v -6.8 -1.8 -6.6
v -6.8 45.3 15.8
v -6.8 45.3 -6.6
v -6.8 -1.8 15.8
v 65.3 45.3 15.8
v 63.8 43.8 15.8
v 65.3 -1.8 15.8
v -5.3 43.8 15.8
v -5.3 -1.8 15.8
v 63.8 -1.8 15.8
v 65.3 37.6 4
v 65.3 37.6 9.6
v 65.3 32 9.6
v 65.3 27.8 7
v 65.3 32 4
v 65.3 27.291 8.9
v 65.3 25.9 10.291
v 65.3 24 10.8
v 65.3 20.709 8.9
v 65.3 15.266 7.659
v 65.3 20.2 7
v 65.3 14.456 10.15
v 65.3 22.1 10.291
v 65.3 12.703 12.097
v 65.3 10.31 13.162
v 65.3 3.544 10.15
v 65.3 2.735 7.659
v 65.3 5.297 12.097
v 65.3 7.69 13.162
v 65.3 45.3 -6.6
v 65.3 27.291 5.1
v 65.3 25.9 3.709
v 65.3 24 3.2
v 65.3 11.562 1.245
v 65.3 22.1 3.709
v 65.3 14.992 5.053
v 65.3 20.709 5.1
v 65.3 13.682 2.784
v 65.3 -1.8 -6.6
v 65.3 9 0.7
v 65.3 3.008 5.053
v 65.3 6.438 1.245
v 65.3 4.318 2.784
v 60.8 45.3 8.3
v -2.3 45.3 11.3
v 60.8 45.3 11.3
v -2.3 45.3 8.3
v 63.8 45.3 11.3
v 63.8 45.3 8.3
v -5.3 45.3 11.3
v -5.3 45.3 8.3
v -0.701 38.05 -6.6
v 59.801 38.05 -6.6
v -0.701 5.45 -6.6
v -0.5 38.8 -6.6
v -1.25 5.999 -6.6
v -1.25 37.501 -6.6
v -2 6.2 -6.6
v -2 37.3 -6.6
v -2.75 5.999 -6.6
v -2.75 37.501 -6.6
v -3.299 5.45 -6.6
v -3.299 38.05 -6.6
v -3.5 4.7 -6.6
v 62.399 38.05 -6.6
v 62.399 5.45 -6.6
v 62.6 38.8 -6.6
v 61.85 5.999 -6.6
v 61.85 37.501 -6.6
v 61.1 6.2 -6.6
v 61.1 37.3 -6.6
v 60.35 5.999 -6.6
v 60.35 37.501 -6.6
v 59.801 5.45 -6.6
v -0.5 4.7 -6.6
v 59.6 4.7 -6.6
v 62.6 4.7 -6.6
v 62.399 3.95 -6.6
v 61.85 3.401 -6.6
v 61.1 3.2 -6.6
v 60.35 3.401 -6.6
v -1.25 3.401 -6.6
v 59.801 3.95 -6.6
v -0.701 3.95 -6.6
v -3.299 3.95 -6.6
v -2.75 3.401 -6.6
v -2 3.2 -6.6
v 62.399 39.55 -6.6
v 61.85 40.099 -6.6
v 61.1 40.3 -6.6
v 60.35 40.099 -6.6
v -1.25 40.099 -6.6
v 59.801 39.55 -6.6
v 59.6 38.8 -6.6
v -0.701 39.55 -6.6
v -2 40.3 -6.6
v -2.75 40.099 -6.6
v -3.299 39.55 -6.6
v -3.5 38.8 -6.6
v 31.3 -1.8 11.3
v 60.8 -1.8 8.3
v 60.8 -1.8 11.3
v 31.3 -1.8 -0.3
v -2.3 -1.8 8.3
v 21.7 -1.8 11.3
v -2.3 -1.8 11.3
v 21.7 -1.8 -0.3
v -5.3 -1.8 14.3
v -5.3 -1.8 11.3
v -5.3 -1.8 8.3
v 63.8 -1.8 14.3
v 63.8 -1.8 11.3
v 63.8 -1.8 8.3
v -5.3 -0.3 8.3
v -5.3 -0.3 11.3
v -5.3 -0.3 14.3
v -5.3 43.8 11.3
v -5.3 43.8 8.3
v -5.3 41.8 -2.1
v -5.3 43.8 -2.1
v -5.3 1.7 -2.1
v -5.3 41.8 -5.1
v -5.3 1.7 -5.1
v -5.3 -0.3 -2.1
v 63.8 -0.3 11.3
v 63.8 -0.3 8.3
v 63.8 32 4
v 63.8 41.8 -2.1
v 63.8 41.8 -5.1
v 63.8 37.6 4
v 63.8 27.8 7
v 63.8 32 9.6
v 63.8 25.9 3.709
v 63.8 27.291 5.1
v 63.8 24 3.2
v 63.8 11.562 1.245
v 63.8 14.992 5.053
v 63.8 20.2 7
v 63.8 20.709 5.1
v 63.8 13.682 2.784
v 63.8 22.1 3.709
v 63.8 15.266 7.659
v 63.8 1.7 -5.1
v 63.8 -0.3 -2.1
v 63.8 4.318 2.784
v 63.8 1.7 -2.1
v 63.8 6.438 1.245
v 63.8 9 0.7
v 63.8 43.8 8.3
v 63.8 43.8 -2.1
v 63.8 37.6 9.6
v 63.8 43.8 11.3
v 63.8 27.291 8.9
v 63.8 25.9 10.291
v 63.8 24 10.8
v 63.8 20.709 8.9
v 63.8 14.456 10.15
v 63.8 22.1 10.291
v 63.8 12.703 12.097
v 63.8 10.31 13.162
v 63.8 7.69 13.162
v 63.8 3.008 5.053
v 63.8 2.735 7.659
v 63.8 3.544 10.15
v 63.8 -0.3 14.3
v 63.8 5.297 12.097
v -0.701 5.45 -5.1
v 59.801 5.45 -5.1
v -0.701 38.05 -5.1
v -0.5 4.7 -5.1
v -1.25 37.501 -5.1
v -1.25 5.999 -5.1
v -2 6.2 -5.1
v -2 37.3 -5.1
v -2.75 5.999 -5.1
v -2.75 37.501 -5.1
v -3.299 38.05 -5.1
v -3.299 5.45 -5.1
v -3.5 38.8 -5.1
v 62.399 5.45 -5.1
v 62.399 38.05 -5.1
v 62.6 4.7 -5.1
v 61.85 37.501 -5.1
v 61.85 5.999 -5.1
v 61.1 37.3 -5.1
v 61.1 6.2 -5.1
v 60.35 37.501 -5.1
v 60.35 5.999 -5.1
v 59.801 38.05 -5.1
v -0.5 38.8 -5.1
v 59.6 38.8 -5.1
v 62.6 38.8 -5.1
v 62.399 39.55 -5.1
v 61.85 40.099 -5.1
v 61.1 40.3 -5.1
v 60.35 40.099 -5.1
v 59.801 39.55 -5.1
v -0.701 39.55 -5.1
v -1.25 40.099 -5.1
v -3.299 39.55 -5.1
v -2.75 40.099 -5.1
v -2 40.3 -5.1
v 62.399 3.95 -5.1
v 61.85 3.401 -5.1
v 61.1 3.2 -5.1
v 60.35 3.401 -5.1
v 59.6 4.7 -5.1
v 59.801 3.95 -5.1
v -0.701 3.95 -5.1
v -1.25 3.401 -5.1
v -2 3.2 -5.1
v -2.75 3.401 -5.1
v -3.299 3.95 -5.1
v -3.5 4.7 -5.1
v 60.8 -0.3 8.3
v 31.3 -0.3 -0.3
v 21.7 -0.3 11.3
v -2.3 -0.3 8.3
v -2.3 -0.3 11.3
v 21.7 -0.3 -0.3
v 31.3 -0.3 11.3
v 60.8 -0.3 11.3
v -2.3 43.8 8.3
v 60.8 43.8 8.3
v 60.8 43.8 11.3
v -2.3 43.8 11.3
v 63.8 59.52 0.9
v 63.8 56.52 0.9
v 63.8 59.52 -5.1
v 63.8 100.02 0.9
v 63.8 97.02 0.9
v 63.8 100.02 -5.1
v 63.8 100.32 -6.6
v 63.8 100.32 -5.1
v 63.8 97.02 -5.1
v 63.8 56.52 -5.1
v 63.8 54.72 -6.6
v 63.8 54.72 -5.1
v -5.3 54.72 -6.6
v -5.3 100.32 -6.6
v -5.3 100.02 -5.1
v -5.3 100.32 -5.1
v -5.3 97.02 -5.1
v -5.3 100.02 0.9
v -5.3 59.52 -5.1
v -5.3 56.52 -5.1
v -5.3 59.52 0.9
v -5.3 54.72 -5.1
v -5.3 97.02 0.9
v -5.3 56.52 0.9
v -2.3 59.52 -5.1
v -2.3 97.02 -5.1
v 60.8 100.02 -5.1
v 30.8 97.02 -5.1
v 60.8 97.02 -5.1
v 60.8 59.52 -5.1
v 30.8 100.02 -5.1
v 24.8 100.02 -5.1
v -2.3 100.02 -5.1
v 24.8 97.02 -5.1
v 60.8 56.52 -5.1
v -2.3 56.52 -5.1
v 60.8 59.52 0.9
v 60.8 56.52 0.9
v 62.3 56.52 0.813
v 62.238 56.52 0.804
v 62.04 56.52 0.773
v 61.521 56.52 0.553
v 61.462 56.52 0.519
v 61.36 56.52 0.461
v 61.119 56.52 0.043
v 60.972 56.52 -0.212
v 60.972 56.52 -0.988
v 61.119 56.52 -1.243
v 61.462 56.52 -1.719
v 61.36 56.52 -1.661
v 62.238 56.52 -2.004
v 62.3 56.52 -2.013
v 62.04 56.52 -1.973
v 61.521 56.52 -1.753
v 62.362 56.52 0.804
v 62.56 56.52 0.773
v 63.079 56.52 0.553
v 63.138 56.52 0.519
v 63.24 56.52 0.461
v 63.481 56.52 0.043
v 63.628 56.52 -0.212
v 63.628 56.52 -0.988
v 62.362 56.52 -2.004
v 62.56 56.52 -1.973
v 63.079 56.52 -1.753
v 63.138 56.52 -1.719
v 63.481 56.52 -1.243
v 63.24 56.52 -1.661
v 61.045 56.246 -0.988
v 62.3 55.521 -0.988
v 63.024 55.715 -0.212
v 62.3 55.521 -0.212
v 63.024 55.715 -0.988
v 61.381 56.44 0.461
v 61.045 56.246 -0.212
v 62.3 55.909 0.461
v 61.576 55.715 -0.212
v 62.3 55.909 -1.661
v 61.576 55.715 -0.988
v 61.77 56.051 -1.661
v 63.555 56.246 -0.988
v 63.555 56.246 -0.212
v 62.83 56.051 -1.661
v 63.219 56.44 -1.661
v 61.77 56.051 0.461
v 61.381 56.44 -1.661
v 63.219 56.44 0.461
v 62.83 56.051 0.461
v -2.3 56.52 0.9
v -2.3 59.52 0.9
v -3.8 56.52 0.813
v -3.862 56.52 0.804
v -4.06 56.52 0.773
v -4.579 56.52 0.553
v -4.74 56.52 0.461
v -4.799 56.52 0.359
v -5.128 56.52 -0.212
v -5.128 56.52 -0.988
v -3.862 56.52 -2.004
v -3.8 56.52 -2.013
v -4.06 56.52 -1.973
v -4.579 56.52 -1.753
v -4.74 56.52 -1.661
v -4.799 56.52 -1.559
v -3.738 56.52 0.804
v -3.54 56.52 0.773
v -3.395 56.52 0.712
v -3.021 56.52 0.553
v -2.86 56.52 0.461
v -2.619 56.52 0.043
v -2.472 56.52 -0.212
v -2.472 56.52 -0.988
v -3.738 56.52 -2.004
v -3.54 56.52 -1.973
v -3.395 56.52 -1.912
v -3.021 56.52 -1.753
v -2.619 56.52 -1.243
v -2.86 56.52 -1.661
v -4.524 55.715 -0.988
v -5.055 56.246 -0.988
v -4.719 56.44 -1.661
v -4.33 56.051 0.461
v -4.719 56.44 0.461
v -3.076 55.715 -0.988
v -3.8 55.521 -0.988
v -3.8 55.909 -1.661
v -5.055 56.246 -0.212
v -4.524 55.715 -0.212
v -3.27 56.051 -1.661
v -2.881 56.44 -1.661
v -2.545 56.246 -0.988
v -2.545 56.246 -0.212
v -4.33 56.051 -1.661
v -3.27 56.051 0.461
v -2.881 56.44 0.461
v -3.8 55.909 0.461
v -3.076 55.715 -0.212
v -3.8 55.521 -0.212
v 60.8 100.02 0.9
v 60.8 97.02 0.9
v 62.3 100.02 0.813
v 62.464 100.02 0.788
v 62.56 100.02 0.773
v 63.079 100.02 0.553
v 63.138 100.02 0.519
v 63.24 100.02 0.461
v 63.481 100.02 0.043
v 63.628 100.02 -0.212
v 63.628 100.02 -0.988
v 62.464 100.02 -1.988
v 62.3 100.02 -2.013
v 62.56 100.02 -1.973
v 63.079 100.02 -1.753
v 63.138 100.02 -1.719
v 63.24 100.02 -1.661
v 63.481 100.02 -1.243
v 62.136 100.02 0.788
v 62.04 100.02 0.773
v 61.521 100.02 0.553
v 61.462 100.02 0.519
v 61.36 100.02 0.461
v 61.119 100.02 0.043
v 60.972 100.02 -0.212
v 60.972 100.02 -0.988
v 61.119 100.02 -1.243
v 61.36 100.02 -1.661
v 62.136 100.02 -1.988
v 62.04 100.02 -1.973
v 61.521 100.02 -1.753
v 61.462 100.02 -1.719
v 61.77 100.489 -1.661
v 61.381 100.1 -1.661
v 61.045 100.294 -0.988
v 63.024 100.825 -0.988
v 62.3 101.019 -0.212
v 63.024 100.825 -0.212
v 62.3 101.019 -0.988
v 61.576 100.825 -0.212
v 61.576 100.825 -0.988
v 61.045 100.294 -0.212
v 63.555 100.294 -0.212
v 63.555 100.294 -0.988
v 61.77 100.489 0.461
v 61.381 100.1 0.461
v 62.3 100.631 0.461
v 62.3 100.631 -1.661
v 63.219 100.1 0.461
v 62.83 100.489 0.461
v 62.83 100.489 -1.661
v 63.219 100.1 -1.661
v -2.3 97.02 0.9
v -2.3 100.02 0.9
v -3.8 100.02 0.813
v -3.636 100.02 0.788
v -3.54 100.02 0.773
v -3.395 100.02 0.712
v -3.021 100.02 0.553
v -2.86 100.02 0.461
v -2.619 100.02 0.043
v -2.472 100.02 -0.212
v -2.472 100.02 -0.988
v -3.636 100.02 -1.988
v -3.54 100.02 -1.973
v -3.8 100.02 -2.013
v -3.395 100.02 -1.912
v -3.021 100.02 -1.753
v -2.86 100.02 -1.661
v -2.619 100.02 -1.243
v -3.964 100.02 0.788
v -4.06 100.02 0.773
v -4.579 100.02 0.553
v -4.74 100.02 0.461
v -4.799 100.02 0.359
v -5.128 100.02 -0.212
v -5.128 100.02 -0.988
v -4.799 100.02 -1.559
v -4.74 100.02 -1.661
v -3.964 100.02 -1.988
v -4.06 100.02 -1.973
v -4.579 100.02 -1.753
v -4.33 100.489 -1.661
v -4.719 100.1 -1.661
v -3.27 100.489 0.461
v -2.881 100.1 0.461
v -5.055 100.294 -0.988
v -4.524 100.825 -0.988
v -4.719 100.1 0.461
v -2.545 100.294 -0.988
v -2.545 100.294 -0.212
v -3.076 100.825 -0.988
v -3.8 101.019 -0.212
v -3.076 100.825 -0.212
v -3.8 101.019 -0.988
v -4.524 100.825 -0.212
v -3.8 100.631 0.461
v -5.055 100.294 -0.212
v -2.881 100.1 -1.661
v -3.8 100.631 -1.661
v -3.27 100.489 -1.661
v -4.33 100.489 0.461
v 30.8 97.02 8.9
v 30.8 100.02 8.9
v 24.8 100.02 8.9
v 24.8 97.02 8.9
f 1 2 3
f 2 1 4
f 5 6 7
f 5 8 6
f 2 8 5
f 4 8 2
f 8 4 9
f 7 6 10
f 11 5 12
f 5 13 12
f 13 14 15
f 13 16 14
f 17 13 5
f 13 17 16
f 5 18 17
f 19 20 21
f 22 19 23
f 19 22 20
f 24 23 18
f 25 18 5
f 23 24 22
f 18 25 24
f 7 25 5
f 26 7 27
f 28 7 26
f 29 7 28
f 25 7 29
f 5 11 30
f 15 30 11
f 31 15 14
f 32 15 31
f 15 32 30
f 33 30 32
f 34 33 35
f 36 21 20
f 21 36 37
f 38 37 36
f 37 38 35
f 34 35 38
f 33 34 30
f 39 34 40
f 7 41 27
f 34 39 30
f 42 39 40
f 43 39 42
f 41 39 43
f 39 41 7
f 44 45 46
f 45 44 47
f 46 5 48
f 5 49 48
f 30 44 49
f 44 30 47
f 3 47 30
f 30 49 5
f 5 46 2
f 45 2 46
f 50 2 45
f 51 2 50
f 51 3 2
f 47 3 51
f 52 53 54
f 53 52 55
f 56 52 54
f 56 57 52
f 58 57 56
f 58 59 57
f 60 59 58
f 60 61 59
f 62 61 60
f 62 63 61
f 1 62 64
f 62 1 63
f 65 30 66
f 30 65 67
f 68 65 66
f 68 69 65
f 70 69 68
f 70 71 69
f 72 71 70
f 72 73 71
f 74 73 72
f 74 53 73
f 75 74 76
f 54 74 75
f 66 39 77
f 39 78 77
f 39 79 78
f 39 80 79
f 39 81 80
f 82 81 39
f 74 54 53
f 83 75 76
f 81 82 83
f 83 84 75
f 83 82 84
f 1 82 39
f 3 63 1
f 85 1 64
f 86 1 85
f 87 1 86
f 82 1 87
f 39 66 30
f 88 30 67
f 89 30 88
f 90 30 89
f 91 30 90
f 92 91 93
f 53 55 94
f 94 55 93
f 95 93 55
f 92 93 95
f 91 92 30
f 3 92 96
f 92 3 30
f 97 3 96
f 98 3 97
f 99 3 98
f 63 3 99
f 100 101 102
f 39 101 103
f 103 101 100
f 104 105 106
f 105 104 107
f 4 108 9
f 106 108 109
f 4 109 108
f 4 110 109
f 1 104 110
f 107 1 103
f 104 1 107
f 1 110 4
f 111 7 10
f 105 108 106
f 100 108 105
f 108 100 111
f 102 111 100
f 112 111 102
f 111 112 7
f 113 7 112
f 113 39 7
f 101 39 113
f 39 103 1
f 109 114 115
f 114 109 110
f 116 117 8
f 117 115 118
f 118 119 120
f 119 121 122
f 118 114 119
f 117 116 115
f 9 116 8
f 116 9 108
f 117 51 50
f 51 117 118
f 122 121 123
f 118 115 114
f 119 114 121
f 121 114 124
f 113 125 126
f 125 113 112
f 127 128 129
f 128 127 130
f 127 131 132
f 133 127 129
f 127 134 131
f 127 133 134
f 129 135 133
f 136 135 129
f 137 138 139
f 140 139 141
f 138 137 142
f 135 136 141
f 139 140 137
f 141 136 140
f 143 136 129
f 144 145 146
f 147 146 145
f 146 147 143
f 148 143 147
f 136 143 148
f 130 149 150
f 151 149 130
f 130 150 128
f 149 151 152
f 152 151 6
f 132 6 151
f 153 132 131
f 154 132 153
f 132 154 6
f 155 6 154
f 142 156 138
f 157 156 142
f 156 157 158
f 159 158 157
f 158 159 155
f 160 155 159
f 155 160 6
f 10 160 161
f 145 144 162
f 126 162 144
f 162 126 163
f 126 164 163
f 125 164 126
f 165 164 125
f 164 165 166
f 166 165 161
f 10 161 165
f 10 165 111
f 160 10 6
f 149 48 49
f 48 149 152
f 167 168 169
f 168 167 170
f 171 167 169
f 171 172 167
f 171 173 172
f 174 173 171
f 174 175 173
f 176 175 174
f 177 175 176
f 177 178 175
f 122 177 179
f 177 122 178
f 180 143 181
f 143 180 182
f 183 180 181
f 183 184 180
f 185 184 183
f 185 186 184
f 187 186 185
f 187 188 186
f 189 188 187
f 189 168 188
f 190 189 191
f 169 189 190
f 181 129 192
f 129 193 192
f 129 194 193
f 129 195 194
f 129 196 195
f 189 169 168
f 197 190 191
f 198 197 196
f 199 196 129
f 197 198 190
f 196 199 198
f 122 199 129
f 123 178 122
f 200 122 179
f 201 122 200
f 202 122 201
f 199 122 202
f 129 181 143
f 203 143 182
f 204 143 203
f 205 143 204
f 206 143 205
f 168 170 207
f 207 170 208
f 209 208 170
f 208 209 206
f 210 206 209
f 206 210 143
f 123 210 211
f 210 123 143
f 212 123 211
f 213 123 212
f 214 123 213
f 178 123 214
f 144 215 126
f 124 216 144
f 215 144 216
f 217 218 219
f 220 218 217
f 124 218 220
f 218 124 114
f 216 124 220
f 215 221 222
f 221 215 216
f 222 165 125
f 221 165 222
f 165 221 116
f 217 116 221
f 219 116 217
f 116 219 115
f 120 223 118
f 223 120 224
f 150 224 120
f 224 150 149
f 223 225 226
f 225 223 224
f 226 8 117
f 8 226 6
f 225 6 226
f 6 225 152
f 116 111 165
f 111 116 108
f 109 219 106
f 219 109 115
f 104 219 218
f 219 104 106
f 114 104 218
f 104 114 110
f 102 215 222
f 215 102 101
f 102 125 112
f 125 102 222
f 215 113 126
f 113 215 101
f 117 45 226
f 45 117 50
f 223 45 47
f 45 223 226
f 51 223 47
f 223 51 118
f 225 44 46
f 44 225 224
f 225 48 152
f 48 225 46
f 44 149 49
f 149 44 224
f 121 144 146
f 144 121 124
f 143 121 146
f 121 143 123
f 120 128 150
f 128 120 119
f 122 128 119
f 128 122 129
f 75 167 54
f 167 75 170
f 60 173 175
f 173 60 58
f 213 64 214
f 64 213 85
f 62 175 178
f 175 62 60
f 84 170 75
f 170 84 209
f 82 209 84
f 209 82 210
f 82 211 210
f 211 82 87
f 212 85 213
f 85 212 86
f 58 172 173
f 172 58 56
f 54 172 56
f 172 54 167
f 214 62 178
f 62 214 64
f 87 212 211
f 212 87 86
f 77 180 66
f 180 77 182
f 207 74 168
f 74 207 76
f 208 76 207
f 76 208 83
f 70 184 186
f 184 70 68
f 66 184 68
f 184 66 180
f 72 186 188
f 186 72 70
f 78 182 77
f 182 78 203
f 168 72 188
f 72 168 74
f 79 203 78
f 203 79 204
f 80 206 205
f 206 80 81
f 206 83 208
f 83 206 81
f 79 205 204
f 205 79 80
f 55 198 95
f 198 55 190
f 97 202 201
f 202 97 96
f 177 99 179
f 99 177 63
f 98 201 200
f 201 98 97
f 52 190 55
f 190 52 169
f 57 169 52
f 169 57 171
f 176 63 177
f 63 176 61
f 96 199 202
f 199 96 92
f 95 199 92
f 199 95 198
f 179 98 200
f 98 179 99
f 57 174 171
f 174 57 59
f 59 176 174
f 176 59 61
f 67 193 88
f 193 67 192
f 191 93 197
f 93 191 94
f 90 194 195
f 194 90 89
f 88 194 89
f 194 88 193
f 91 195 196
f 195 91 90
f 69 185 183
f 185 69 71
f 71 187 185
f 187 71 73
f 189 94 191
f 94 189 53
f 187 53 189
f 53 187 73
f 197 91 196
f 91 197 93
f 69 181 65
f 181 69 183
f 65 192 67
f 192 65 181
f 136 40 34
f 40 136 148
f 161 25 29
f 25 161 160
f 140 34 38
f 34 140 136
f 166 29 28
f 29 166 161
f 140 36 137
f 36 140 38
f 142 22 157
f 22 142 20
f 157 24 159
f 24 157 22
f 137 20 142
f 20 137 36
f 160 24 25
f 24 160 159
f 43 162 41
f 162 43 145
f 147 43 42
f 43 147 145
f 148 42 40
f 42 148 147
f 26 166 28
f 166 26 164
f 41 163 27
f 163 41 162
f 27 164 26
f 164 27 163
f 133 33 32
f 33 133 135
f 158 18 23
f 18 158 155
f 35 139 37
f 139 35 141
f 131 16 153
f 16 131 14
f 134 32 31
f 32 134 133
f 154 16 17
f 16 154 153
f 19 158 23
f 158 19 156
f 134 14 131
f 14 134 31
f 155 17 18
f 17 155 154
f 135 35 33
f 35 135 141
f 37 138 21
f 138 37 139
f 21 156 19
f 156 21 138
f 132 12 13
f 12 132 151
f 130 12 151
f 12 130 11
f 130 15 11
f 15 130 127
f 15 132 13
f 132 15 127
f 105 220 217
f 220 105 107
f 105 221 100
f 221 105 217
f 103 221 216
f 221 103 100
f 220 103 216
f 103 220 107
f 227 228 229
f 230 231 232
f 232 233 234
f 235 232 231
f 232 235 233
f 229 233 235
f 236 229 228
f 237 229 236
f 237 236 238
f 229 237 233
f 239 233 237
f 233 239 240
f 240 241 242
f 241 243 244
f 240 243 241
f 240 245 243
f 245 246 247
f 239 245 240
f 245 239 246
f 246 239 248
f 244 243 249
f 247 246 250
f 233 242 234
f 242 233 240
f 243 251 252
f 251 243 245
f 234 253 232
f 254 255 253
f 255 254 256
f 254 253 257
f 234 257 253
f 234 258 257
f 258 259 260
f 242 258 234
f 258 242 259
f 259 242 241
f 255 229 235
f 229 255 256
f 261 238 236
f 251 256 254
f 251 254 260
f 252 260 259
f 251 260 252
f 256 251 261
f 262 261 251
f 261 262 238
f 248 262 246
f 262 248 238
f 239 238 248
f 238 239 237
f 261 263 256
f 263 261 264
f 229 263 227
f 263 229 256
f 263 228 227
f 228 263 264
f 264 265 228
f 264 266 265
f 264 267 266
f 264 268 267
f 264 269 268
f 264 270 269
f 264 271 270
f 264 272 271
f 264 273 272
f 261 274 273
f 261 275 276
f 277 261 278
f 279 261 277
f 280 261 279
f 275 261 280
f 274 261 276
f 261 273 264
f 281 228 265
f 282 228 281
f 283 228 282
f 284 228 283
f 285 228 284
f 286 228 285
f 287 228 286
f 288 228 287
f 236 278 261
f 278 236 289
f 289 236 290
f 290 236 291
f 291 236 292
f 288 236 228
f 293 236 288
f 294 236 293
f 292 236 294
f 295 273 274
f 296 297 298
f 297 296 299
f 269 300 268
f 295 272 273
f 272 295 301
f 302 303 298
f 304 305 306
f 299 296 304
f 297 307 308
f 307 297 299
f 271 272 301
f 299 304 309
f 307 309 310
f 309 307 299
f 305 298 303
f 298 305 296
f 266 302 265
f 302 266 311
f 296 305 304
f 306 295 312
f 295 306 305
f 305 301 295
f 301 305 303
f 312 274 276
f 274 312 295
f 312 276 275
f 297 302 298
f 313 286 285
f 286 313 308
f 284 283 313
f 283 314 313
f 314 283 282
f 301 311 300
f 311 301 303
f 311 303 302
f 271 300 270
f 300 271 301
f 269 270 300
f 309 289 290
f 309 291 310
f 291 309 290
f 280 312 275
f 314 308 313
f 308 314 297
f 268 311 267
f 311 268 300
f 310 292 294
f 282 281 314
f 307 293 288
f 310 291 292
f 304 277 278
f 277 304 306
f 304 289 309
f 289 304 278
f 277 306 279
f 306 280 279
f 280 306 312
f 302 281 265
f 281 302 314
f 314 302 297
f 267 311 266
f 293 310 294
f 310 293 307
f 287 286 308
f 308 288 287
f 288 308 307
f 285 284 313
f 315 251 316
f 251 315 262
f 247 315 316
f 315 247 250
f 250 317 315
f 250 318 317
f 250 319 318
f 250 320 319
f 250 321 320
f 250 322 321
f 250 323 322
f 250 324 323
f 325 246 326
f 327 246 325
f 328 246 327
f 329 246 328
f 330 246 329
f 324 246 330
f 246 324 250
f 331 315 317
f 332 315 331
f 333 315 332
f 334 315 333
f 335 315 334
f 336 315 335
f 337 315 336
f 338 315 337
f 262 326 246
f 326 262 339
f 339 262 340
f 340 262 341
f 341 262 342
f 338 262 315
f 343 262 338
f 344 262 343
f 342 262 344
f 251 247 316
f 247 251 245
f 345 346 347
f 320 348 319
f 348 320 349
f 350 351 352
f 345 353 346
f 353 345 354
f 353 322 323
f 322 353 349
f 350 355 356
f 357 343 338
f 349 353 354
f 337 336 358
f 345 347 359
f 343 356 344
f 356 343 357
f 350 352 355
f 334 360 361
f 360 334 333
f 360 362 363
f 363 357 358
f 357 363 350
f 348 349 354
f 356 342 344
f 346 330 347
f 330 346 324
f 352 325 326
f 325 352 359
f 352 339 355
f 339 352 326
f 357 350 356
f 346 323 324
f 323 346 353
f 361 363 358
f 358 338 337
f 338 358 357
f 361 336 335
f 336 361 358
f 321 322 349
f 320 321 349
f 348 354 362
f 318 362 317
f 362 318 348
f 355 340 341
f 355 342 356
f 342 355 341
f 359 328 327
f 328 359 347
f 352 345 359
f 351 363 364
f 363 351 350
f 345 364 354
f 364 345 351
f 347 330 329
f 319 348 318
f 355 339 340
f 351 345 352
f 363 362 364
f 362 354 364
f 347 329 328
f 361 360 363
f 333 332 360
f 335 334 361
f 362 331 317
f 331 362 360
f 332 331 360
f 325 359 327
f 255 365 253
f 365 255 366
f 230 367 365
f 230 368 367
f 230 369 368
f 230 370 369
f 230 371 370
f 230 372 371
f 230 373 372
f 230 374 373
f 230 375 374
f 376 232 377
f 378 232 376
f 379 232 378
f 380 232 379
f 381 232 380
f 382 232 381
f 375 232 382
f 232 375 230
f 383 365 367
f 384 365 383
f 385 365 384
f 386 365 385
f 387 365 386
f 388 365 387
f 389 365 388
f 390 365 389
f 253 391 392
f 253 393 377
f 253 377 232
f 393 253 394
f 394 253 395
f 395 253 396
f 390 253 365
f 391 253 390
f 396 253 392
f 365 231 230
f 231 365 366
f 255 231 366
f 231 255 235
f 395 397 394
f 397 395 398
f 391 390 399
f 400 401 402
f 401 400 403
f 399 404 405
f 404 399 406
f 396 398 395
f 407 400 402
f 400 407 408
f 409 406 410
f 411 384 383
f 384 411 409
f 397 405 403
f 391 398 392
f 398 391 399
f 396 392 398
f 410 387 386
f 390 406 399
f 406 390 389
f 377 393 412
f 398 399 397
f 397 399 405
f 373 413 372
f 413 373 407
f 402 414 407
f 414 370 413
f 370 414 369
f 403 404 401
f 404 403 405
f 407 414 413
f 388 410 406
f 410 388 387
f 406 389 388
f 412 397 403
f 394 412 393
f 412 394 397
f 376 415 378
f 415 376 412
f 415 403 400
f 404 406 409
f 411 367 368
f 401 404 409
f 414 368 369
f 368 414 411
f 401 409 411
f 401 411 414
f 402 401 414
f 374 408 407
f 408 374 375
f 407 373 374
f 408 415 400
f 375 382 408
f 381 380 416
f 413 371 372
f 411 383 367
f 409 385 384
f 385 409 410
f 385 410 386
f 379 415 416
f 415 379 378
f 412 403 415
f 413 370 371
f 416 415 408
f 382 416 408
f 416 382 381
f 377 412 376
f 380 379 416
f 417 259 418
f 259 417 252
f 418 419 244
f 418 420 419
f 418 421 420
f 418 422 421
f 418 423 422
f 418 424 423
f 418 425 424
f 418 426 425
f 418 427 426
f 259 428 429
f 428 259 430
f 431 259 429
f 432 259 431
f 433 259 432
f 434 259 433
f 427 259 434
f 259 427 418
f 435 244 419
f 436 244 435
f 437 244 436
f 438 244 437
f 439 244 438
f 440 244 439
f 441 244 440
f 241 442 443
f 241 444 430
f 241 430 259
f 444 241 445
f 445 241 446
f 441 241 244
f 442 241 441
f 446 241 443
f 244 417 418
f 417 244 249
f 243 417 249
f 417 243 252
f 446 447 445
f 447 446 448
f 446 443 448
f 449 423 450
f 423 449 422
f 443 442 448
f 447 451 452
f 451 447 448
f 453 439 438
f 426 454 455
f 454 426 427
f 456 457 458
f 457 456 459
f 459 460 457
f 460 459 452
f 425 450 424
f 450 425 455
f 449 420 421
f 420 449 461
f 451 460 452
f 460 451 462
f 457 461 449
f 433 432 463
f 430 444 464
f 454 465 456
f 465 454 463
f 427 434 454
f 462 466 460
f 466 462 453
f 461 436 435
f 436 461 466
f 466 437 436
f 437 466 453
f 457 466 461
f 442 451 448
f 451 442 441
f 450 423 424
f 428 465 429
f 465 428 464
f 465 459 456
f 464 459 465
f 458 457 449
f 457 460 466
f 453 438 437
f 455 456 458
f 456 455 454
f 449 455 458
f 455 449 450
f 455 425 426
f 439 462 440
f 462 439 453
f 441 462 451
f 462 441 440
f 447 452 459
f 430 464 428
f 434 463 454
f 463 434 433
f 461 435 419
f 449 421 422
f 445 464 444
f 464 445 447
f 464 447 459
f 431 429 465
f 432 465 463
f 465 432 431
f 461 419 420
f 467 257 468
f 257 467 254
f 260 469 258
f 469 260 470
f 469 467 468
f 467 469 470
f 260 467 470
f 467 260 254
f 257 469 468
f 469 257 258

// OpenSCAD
//he important connectors and
// holes. You can define here if you have shorte
// This is the iotsa board itself, including tned the board, which will
// not only change the board itself, but also the box we are going to create around it.
//
// How many experiment rows of the PCB have been cut
numberOfRowsRemoved = 0; // [1:10]
extraMMRemoved = 0; // [0:no rows removed,2.2:rows removed]
// ignore computed values:
numberOfMMRemoved = extraMMRemoved + (numberOfRowsRemoved*2.54);

//
// Box parameters. We are going to compute the size from the parameters.
//
// How thick should the box walls be
boxThickness = 1.5;
// gap we want between board and box (on all sides, individually) and around connector
leeWay = 0.3;   
// Height (above PCB) of tallest component
iotsaComponentHeight = 14;
// How far the soldering extends below the board.
iotsaSolderingHeight = 3;
// ignore the computed variables
boxBottomThickness = boxThickness;
boxFrontThickness = boxThickness;
boxLeftThickness = boxThickness;
boxRightThickness = boxThickness;
boxBackThickness = boxThickness;
boxTopThickness = boxThickness;

// ignore computed values:
iotsaBoardXSize = 63.5 - numberOfMMRemoved;
// ignore computed values:
iotsaBoardYSize = 43.5;

// ignore standard board values:
boardThickness = 1.8;
// ignore standard board values:
regulatorAngle = 35;
// ignore standard board values:
esp12AntennaStickout = 5;


module iotsaBoard() {
    module esp12() {
        union() {
            cube([24, 16, 2]); // the esp-12 board
            translate([8, 1.5, 2]) cube([15, 13, 2.5]); // the metal cap
        }
    }
    module regulator() {
        rotate([-regulatorAngle, 0, 0])
        translate([0, 0, 5])
        union() {
            translate([0, 4.5, 0]) cube([10.2, 1.3, 15]);
            translate([0, 0, 0]) cube([10.2, 4.5, 8.5]);
        }
    }
    module powerjack() {
        difference() {
            cube([9, 15, 11]);
            translate([4.5, -1, 7]) rotate([-90, 0, 0]) cylinder(14, d=6);
        }
    }
    translate([0, 0, -1.8])
    union() {
        // The board
        difference() {
            cube([iotsaBoardXSize,iotsaBoardYSize,1.8]);
            translate([2, 2, -0.1]) cylinder(2, d=2, center=false, $fn=12);
            translate([2, 41, -0.1]) cylinder(2, d=2, center=false, $fn=12);
            translate([36.5, 2, -0.1]) cylinder(2, d=2, center=false, $fn=12);
            translate([36.5, 41, -0.1]) cylinder(2, d=2, center=false, $fn=12);
            translate([60.5, 2, -0.1]) cylinder(2, d=2, center=false, $fn=12);
            translate([60.5, 41, -0.1]) cylinder(2, d=2, center=false, $fn=12);
        }
        // The components
        translate([-esp12AntennaStickout, 13.5, 1.8]) esp12();
        translate([20, 15, 1.8]) regulator();
        translate([22, -3, 1.8]) powerjack();
    }
}


// Computed parameters
innerXSize = iotsaBoardXSize + esp12AntennaStickout + 2*leeWay;
innerYSize = iotsaBoardYSize + 2*leeWay;
innerZSize = boardThickness + iotsaComponentHeight + iotsaSolderingHeight + 2*leeWay;

outerXSize = innerXSize + boxLeftThickness + boxRightThickness;
outerYSize = innerYSize + boxFrontThickness + boxBackThickness;
outerZSize = innerZSize + boxBottomThickness + boxTopThickness;

strutThickness = 2;
retainerWidth = 3;
retainerLength = 6;

module box() {
    
    module basicBox() {
         difference() {
            cube([outerXSize, outerYSize, outerZSize]);
            translate([boxLeftThickness, boxFrontThickness, boxBottomThickness])
                cube([innerXSize, innerYSize, innerZSize+boxTopThickness+1]);
        }
    }
    
    module completeBox() {
     translate([-esp12AntennaStickout-boxLeftThickness-leeWay, -boxFrontThickness-leeWay, -(boardThickness+iotsaSolderingHeight+boxBottomThickness+leeWay)])
        union() {
            // The box itself, with the cutouts for the lid
            difference() {
                basicBox();
                // Front cutout
                translate([boxLeftThickness, -0.5*boxFrontThickness, outerZSize-boxTopThickness]) 
                    cube([innerXSize, 2*boxFrontThickness, 2*boxTopThickness]);
                // back cutout
                * translate([boxLeftThickness, innerYSize+boxFrontThickness-0.5*leeWay, outerZSize-boxTopThickness-boxBottomThickness]) 
                    cube([innerXSize, 0.5*boxBackThickness+leeWay, 0.5*boxTopThickness]);

                // front left retainer hole
                translate([boxLeftThickness,-0.5*boxFrontThickness, outerZSize-boxTopThickness-retainerLength]) 
                    cube([retainerWidth, 2*boxFrontThickness, retainerWidth]); 
                // front right retainer hole
                translate([outerXSize-boxRightThickness-retainerWidth, -0.5*boxFrontThickness, outerZSize-boxTopThickness-retainerLength]) 
                    cube([retainerWidth, 2*boxFrontThickness, retainerWidth]); 

                // back left retainer hole
                translate([boxLeftThickness,innerYSize+boxFrontThickness-0.5*boxBackThickness, outerZSize-boxTopThickness-retainerLength]) 
                    cube([retainerWidth, 2*boxBackThickness, retainerWidth]); 
                // back right retainer hole
                translate([outerXSize-boxRightThickness-retainerWidth, innerYSize+boxFrontThickness-0.5*boxBackThickness, outerZSize-boxTopThickness-retainerLength]) 
                    cube([retainerWidth, 2*boxBackThickness, retainerWidth]); 
            }
            // The front support for the iotsa board
            cube([outerXSize, boxFrontThickness+strutThickness, boxBottomThickness+iotsaSolderingHeight]);
            // The back support for the outsa board
            translate([0, innerYSize+boxFrontThickness-strutThickness, 0])
                cube([outerXSize, boxBackThickness+strutThickness, boxBottomThickness+iotsaSolderingHeight]);
        }
   }
    
    module frontHoles() {
        // Holes in the front. X and Z relative to iotsa frontleft corner, Y should be 2*frontThickness.
        translate([22-leeWay, 0, 0-leeWay]) cube([9+2*leeWay, 2*boxFrontThickness, 11+2*leeWay]);
    }
    module rightHoles() {
        // Holes on the right. Y and Z are relative to iotsa frontright cornet, X should be 2* rightThickness
        union() {
            translate([0, 9, 7]) 
                rotate([0, 90, 0])
                    cylinder(h=2*boxRightThickness, d=12+2*leeWay, $fa=24);
            translate([0, 24, 7])  
                rotate([0, 90, 0])
                    cylinder(h=2*boxRightThickness, d=7+2*leeWay, $fa=24);
            // Hole for NeoPixel
            translate([0, 32, 4]) cube([2*boxRightThickness, 5+2*leeWay, 5+2*leeWay]);
        }
    }
    module bottomHoles() {
        // Holes in the bottom. X and Y are relative to inner box frontleft corner, Z should be 2*bottomThickness
        // 4 screw holes
        translate([3, 3+strutThickness, 0]) cylinder(2*boxBottomThickness, d=3, $fn=12);
        translate([innerXSize-3, 3+strutThickness, 0]) cylinder(2*boxBottomThickness, d=3, $fn=12);
        translate([3, innerYSize-(3+strutThickness), 0]) cylinder(2*boxBottomThickness, d=3, $fn=12);
        translate([innerXSize-3, innerYSize-(3+strutThickness), 0]) cylinder(2*boxBottomThickness, d=3, $fn=12);
        
        // center hole for wires
        * translate([innerXSize/2, innerYSize/2, 0]) cylinder(2*boxBottomThickness, d=6, $fn=12);
    }
    
    union() {
        difference() {
            // The box itself
            completeBox();
            // The holes in the enclosure
            translate([0, -1.5*boxFrontThickness-leeWay, 0]) frontHoles();
            
            translate([iotsaBoardXSize+leeWay-0.5*boxRightThickness, 0, 0]) rightHoles();
            
            translate([-esp12AntennaStickout, -leeWay, -(boardThickness+iotsaSolderingHeight+1.5*boxBottomThickness+leeWay)]) bottomHoles();
            
        }
        % iotsaBoard();
    }
}

module lid() {
      translate([-esp12AntennaStickout-leeWay, -boxFrontThickness-leeWay, iotsaComponentHeight + leeWay])
        union() {
            // The lid itself
            cube([innerXSize, innerYSize+boxFrontThickness, boxTopThickness]);
            // The left front retainer rod
            translate([0, boxFrontThickness+leeWay, -retainerLength]) cube([retainerWidth, retainerWidth, retainerLength+boxTopThickness]);
            translate([0.5*retainerWidth, 0.75*retainerWidth, -retainerLength+0.5*retainerWidth]) sphere(d=retainerWidth, $fn=12);

            // The right front retainer rod
            translate([innerXSize-retainerWidth, boxFrontThickness+leeWay, -retainerLength]) cube([retainerWidth, retainerWidth, retainerLength+boxTopThickness]);
            translate([innerXSize-0.5*retainerWidth, 0.75*retainerWidth, -retainerLength+0.5*retainerWidth]) sphere(d=retainerWidth, $fn=12);

            // The left back retainer rod
            translate([0, innerYSize+boxFrontThickness-retainerWidth-leeWay, -retainerLength]) cube([retainerWidth, retainerWidth, retainerLength+boxTopThickness]);
            translate([0.5*retainerWidth, innerYSize+boxFrontThickness-0.25*retainerWidth, -retainerLength+0.5*retainerWidth]) sphere(d=retainerWidth, $fn=12);

            // The right back retainer rod
            translate([innerXSize-retainerWidth, innerYSize+boxFrontThickness-retainerWidth-leeWay, -retainerLength]) cube([retainerWidth, retainerWidth, retainerLength+boxTopThickness]);
            translate([innerXSize-0.5*retainerWidth, innerYSize+boxFrontThickness-0.25*retainerWidth, -retainerLength+0.5*retainerWidth]) sphere(d=retainerWidth, $fn=12);
            
            // The board locking rod
            translate([36-retainerWidth, innerYSize+boxFrontThickness-retainerWidth-leeWay, -iotsaComponentHeight]) cube([2*retainerWidth, retainerWidth, iotsaComponentHeight+boxTopThickness]);
        }
}

box();
% lid();

translate([outerXSize-(esp12AntennaStickout+boxLeftThickness+leeWay), 1.2*outerYSize, outerZSize-(boardThickness+iotsaSolderingHeight+boxBottomThickness+leeWay)]) rotate([0, 180, 0]) translate([(esp12AntennaStickout+boxLeftThickness+leeWay), 0, (boardThickness+iotsaSolderingHeight+boxBottomThickness+leeWay)]) {
    % box();
    lid();
}
